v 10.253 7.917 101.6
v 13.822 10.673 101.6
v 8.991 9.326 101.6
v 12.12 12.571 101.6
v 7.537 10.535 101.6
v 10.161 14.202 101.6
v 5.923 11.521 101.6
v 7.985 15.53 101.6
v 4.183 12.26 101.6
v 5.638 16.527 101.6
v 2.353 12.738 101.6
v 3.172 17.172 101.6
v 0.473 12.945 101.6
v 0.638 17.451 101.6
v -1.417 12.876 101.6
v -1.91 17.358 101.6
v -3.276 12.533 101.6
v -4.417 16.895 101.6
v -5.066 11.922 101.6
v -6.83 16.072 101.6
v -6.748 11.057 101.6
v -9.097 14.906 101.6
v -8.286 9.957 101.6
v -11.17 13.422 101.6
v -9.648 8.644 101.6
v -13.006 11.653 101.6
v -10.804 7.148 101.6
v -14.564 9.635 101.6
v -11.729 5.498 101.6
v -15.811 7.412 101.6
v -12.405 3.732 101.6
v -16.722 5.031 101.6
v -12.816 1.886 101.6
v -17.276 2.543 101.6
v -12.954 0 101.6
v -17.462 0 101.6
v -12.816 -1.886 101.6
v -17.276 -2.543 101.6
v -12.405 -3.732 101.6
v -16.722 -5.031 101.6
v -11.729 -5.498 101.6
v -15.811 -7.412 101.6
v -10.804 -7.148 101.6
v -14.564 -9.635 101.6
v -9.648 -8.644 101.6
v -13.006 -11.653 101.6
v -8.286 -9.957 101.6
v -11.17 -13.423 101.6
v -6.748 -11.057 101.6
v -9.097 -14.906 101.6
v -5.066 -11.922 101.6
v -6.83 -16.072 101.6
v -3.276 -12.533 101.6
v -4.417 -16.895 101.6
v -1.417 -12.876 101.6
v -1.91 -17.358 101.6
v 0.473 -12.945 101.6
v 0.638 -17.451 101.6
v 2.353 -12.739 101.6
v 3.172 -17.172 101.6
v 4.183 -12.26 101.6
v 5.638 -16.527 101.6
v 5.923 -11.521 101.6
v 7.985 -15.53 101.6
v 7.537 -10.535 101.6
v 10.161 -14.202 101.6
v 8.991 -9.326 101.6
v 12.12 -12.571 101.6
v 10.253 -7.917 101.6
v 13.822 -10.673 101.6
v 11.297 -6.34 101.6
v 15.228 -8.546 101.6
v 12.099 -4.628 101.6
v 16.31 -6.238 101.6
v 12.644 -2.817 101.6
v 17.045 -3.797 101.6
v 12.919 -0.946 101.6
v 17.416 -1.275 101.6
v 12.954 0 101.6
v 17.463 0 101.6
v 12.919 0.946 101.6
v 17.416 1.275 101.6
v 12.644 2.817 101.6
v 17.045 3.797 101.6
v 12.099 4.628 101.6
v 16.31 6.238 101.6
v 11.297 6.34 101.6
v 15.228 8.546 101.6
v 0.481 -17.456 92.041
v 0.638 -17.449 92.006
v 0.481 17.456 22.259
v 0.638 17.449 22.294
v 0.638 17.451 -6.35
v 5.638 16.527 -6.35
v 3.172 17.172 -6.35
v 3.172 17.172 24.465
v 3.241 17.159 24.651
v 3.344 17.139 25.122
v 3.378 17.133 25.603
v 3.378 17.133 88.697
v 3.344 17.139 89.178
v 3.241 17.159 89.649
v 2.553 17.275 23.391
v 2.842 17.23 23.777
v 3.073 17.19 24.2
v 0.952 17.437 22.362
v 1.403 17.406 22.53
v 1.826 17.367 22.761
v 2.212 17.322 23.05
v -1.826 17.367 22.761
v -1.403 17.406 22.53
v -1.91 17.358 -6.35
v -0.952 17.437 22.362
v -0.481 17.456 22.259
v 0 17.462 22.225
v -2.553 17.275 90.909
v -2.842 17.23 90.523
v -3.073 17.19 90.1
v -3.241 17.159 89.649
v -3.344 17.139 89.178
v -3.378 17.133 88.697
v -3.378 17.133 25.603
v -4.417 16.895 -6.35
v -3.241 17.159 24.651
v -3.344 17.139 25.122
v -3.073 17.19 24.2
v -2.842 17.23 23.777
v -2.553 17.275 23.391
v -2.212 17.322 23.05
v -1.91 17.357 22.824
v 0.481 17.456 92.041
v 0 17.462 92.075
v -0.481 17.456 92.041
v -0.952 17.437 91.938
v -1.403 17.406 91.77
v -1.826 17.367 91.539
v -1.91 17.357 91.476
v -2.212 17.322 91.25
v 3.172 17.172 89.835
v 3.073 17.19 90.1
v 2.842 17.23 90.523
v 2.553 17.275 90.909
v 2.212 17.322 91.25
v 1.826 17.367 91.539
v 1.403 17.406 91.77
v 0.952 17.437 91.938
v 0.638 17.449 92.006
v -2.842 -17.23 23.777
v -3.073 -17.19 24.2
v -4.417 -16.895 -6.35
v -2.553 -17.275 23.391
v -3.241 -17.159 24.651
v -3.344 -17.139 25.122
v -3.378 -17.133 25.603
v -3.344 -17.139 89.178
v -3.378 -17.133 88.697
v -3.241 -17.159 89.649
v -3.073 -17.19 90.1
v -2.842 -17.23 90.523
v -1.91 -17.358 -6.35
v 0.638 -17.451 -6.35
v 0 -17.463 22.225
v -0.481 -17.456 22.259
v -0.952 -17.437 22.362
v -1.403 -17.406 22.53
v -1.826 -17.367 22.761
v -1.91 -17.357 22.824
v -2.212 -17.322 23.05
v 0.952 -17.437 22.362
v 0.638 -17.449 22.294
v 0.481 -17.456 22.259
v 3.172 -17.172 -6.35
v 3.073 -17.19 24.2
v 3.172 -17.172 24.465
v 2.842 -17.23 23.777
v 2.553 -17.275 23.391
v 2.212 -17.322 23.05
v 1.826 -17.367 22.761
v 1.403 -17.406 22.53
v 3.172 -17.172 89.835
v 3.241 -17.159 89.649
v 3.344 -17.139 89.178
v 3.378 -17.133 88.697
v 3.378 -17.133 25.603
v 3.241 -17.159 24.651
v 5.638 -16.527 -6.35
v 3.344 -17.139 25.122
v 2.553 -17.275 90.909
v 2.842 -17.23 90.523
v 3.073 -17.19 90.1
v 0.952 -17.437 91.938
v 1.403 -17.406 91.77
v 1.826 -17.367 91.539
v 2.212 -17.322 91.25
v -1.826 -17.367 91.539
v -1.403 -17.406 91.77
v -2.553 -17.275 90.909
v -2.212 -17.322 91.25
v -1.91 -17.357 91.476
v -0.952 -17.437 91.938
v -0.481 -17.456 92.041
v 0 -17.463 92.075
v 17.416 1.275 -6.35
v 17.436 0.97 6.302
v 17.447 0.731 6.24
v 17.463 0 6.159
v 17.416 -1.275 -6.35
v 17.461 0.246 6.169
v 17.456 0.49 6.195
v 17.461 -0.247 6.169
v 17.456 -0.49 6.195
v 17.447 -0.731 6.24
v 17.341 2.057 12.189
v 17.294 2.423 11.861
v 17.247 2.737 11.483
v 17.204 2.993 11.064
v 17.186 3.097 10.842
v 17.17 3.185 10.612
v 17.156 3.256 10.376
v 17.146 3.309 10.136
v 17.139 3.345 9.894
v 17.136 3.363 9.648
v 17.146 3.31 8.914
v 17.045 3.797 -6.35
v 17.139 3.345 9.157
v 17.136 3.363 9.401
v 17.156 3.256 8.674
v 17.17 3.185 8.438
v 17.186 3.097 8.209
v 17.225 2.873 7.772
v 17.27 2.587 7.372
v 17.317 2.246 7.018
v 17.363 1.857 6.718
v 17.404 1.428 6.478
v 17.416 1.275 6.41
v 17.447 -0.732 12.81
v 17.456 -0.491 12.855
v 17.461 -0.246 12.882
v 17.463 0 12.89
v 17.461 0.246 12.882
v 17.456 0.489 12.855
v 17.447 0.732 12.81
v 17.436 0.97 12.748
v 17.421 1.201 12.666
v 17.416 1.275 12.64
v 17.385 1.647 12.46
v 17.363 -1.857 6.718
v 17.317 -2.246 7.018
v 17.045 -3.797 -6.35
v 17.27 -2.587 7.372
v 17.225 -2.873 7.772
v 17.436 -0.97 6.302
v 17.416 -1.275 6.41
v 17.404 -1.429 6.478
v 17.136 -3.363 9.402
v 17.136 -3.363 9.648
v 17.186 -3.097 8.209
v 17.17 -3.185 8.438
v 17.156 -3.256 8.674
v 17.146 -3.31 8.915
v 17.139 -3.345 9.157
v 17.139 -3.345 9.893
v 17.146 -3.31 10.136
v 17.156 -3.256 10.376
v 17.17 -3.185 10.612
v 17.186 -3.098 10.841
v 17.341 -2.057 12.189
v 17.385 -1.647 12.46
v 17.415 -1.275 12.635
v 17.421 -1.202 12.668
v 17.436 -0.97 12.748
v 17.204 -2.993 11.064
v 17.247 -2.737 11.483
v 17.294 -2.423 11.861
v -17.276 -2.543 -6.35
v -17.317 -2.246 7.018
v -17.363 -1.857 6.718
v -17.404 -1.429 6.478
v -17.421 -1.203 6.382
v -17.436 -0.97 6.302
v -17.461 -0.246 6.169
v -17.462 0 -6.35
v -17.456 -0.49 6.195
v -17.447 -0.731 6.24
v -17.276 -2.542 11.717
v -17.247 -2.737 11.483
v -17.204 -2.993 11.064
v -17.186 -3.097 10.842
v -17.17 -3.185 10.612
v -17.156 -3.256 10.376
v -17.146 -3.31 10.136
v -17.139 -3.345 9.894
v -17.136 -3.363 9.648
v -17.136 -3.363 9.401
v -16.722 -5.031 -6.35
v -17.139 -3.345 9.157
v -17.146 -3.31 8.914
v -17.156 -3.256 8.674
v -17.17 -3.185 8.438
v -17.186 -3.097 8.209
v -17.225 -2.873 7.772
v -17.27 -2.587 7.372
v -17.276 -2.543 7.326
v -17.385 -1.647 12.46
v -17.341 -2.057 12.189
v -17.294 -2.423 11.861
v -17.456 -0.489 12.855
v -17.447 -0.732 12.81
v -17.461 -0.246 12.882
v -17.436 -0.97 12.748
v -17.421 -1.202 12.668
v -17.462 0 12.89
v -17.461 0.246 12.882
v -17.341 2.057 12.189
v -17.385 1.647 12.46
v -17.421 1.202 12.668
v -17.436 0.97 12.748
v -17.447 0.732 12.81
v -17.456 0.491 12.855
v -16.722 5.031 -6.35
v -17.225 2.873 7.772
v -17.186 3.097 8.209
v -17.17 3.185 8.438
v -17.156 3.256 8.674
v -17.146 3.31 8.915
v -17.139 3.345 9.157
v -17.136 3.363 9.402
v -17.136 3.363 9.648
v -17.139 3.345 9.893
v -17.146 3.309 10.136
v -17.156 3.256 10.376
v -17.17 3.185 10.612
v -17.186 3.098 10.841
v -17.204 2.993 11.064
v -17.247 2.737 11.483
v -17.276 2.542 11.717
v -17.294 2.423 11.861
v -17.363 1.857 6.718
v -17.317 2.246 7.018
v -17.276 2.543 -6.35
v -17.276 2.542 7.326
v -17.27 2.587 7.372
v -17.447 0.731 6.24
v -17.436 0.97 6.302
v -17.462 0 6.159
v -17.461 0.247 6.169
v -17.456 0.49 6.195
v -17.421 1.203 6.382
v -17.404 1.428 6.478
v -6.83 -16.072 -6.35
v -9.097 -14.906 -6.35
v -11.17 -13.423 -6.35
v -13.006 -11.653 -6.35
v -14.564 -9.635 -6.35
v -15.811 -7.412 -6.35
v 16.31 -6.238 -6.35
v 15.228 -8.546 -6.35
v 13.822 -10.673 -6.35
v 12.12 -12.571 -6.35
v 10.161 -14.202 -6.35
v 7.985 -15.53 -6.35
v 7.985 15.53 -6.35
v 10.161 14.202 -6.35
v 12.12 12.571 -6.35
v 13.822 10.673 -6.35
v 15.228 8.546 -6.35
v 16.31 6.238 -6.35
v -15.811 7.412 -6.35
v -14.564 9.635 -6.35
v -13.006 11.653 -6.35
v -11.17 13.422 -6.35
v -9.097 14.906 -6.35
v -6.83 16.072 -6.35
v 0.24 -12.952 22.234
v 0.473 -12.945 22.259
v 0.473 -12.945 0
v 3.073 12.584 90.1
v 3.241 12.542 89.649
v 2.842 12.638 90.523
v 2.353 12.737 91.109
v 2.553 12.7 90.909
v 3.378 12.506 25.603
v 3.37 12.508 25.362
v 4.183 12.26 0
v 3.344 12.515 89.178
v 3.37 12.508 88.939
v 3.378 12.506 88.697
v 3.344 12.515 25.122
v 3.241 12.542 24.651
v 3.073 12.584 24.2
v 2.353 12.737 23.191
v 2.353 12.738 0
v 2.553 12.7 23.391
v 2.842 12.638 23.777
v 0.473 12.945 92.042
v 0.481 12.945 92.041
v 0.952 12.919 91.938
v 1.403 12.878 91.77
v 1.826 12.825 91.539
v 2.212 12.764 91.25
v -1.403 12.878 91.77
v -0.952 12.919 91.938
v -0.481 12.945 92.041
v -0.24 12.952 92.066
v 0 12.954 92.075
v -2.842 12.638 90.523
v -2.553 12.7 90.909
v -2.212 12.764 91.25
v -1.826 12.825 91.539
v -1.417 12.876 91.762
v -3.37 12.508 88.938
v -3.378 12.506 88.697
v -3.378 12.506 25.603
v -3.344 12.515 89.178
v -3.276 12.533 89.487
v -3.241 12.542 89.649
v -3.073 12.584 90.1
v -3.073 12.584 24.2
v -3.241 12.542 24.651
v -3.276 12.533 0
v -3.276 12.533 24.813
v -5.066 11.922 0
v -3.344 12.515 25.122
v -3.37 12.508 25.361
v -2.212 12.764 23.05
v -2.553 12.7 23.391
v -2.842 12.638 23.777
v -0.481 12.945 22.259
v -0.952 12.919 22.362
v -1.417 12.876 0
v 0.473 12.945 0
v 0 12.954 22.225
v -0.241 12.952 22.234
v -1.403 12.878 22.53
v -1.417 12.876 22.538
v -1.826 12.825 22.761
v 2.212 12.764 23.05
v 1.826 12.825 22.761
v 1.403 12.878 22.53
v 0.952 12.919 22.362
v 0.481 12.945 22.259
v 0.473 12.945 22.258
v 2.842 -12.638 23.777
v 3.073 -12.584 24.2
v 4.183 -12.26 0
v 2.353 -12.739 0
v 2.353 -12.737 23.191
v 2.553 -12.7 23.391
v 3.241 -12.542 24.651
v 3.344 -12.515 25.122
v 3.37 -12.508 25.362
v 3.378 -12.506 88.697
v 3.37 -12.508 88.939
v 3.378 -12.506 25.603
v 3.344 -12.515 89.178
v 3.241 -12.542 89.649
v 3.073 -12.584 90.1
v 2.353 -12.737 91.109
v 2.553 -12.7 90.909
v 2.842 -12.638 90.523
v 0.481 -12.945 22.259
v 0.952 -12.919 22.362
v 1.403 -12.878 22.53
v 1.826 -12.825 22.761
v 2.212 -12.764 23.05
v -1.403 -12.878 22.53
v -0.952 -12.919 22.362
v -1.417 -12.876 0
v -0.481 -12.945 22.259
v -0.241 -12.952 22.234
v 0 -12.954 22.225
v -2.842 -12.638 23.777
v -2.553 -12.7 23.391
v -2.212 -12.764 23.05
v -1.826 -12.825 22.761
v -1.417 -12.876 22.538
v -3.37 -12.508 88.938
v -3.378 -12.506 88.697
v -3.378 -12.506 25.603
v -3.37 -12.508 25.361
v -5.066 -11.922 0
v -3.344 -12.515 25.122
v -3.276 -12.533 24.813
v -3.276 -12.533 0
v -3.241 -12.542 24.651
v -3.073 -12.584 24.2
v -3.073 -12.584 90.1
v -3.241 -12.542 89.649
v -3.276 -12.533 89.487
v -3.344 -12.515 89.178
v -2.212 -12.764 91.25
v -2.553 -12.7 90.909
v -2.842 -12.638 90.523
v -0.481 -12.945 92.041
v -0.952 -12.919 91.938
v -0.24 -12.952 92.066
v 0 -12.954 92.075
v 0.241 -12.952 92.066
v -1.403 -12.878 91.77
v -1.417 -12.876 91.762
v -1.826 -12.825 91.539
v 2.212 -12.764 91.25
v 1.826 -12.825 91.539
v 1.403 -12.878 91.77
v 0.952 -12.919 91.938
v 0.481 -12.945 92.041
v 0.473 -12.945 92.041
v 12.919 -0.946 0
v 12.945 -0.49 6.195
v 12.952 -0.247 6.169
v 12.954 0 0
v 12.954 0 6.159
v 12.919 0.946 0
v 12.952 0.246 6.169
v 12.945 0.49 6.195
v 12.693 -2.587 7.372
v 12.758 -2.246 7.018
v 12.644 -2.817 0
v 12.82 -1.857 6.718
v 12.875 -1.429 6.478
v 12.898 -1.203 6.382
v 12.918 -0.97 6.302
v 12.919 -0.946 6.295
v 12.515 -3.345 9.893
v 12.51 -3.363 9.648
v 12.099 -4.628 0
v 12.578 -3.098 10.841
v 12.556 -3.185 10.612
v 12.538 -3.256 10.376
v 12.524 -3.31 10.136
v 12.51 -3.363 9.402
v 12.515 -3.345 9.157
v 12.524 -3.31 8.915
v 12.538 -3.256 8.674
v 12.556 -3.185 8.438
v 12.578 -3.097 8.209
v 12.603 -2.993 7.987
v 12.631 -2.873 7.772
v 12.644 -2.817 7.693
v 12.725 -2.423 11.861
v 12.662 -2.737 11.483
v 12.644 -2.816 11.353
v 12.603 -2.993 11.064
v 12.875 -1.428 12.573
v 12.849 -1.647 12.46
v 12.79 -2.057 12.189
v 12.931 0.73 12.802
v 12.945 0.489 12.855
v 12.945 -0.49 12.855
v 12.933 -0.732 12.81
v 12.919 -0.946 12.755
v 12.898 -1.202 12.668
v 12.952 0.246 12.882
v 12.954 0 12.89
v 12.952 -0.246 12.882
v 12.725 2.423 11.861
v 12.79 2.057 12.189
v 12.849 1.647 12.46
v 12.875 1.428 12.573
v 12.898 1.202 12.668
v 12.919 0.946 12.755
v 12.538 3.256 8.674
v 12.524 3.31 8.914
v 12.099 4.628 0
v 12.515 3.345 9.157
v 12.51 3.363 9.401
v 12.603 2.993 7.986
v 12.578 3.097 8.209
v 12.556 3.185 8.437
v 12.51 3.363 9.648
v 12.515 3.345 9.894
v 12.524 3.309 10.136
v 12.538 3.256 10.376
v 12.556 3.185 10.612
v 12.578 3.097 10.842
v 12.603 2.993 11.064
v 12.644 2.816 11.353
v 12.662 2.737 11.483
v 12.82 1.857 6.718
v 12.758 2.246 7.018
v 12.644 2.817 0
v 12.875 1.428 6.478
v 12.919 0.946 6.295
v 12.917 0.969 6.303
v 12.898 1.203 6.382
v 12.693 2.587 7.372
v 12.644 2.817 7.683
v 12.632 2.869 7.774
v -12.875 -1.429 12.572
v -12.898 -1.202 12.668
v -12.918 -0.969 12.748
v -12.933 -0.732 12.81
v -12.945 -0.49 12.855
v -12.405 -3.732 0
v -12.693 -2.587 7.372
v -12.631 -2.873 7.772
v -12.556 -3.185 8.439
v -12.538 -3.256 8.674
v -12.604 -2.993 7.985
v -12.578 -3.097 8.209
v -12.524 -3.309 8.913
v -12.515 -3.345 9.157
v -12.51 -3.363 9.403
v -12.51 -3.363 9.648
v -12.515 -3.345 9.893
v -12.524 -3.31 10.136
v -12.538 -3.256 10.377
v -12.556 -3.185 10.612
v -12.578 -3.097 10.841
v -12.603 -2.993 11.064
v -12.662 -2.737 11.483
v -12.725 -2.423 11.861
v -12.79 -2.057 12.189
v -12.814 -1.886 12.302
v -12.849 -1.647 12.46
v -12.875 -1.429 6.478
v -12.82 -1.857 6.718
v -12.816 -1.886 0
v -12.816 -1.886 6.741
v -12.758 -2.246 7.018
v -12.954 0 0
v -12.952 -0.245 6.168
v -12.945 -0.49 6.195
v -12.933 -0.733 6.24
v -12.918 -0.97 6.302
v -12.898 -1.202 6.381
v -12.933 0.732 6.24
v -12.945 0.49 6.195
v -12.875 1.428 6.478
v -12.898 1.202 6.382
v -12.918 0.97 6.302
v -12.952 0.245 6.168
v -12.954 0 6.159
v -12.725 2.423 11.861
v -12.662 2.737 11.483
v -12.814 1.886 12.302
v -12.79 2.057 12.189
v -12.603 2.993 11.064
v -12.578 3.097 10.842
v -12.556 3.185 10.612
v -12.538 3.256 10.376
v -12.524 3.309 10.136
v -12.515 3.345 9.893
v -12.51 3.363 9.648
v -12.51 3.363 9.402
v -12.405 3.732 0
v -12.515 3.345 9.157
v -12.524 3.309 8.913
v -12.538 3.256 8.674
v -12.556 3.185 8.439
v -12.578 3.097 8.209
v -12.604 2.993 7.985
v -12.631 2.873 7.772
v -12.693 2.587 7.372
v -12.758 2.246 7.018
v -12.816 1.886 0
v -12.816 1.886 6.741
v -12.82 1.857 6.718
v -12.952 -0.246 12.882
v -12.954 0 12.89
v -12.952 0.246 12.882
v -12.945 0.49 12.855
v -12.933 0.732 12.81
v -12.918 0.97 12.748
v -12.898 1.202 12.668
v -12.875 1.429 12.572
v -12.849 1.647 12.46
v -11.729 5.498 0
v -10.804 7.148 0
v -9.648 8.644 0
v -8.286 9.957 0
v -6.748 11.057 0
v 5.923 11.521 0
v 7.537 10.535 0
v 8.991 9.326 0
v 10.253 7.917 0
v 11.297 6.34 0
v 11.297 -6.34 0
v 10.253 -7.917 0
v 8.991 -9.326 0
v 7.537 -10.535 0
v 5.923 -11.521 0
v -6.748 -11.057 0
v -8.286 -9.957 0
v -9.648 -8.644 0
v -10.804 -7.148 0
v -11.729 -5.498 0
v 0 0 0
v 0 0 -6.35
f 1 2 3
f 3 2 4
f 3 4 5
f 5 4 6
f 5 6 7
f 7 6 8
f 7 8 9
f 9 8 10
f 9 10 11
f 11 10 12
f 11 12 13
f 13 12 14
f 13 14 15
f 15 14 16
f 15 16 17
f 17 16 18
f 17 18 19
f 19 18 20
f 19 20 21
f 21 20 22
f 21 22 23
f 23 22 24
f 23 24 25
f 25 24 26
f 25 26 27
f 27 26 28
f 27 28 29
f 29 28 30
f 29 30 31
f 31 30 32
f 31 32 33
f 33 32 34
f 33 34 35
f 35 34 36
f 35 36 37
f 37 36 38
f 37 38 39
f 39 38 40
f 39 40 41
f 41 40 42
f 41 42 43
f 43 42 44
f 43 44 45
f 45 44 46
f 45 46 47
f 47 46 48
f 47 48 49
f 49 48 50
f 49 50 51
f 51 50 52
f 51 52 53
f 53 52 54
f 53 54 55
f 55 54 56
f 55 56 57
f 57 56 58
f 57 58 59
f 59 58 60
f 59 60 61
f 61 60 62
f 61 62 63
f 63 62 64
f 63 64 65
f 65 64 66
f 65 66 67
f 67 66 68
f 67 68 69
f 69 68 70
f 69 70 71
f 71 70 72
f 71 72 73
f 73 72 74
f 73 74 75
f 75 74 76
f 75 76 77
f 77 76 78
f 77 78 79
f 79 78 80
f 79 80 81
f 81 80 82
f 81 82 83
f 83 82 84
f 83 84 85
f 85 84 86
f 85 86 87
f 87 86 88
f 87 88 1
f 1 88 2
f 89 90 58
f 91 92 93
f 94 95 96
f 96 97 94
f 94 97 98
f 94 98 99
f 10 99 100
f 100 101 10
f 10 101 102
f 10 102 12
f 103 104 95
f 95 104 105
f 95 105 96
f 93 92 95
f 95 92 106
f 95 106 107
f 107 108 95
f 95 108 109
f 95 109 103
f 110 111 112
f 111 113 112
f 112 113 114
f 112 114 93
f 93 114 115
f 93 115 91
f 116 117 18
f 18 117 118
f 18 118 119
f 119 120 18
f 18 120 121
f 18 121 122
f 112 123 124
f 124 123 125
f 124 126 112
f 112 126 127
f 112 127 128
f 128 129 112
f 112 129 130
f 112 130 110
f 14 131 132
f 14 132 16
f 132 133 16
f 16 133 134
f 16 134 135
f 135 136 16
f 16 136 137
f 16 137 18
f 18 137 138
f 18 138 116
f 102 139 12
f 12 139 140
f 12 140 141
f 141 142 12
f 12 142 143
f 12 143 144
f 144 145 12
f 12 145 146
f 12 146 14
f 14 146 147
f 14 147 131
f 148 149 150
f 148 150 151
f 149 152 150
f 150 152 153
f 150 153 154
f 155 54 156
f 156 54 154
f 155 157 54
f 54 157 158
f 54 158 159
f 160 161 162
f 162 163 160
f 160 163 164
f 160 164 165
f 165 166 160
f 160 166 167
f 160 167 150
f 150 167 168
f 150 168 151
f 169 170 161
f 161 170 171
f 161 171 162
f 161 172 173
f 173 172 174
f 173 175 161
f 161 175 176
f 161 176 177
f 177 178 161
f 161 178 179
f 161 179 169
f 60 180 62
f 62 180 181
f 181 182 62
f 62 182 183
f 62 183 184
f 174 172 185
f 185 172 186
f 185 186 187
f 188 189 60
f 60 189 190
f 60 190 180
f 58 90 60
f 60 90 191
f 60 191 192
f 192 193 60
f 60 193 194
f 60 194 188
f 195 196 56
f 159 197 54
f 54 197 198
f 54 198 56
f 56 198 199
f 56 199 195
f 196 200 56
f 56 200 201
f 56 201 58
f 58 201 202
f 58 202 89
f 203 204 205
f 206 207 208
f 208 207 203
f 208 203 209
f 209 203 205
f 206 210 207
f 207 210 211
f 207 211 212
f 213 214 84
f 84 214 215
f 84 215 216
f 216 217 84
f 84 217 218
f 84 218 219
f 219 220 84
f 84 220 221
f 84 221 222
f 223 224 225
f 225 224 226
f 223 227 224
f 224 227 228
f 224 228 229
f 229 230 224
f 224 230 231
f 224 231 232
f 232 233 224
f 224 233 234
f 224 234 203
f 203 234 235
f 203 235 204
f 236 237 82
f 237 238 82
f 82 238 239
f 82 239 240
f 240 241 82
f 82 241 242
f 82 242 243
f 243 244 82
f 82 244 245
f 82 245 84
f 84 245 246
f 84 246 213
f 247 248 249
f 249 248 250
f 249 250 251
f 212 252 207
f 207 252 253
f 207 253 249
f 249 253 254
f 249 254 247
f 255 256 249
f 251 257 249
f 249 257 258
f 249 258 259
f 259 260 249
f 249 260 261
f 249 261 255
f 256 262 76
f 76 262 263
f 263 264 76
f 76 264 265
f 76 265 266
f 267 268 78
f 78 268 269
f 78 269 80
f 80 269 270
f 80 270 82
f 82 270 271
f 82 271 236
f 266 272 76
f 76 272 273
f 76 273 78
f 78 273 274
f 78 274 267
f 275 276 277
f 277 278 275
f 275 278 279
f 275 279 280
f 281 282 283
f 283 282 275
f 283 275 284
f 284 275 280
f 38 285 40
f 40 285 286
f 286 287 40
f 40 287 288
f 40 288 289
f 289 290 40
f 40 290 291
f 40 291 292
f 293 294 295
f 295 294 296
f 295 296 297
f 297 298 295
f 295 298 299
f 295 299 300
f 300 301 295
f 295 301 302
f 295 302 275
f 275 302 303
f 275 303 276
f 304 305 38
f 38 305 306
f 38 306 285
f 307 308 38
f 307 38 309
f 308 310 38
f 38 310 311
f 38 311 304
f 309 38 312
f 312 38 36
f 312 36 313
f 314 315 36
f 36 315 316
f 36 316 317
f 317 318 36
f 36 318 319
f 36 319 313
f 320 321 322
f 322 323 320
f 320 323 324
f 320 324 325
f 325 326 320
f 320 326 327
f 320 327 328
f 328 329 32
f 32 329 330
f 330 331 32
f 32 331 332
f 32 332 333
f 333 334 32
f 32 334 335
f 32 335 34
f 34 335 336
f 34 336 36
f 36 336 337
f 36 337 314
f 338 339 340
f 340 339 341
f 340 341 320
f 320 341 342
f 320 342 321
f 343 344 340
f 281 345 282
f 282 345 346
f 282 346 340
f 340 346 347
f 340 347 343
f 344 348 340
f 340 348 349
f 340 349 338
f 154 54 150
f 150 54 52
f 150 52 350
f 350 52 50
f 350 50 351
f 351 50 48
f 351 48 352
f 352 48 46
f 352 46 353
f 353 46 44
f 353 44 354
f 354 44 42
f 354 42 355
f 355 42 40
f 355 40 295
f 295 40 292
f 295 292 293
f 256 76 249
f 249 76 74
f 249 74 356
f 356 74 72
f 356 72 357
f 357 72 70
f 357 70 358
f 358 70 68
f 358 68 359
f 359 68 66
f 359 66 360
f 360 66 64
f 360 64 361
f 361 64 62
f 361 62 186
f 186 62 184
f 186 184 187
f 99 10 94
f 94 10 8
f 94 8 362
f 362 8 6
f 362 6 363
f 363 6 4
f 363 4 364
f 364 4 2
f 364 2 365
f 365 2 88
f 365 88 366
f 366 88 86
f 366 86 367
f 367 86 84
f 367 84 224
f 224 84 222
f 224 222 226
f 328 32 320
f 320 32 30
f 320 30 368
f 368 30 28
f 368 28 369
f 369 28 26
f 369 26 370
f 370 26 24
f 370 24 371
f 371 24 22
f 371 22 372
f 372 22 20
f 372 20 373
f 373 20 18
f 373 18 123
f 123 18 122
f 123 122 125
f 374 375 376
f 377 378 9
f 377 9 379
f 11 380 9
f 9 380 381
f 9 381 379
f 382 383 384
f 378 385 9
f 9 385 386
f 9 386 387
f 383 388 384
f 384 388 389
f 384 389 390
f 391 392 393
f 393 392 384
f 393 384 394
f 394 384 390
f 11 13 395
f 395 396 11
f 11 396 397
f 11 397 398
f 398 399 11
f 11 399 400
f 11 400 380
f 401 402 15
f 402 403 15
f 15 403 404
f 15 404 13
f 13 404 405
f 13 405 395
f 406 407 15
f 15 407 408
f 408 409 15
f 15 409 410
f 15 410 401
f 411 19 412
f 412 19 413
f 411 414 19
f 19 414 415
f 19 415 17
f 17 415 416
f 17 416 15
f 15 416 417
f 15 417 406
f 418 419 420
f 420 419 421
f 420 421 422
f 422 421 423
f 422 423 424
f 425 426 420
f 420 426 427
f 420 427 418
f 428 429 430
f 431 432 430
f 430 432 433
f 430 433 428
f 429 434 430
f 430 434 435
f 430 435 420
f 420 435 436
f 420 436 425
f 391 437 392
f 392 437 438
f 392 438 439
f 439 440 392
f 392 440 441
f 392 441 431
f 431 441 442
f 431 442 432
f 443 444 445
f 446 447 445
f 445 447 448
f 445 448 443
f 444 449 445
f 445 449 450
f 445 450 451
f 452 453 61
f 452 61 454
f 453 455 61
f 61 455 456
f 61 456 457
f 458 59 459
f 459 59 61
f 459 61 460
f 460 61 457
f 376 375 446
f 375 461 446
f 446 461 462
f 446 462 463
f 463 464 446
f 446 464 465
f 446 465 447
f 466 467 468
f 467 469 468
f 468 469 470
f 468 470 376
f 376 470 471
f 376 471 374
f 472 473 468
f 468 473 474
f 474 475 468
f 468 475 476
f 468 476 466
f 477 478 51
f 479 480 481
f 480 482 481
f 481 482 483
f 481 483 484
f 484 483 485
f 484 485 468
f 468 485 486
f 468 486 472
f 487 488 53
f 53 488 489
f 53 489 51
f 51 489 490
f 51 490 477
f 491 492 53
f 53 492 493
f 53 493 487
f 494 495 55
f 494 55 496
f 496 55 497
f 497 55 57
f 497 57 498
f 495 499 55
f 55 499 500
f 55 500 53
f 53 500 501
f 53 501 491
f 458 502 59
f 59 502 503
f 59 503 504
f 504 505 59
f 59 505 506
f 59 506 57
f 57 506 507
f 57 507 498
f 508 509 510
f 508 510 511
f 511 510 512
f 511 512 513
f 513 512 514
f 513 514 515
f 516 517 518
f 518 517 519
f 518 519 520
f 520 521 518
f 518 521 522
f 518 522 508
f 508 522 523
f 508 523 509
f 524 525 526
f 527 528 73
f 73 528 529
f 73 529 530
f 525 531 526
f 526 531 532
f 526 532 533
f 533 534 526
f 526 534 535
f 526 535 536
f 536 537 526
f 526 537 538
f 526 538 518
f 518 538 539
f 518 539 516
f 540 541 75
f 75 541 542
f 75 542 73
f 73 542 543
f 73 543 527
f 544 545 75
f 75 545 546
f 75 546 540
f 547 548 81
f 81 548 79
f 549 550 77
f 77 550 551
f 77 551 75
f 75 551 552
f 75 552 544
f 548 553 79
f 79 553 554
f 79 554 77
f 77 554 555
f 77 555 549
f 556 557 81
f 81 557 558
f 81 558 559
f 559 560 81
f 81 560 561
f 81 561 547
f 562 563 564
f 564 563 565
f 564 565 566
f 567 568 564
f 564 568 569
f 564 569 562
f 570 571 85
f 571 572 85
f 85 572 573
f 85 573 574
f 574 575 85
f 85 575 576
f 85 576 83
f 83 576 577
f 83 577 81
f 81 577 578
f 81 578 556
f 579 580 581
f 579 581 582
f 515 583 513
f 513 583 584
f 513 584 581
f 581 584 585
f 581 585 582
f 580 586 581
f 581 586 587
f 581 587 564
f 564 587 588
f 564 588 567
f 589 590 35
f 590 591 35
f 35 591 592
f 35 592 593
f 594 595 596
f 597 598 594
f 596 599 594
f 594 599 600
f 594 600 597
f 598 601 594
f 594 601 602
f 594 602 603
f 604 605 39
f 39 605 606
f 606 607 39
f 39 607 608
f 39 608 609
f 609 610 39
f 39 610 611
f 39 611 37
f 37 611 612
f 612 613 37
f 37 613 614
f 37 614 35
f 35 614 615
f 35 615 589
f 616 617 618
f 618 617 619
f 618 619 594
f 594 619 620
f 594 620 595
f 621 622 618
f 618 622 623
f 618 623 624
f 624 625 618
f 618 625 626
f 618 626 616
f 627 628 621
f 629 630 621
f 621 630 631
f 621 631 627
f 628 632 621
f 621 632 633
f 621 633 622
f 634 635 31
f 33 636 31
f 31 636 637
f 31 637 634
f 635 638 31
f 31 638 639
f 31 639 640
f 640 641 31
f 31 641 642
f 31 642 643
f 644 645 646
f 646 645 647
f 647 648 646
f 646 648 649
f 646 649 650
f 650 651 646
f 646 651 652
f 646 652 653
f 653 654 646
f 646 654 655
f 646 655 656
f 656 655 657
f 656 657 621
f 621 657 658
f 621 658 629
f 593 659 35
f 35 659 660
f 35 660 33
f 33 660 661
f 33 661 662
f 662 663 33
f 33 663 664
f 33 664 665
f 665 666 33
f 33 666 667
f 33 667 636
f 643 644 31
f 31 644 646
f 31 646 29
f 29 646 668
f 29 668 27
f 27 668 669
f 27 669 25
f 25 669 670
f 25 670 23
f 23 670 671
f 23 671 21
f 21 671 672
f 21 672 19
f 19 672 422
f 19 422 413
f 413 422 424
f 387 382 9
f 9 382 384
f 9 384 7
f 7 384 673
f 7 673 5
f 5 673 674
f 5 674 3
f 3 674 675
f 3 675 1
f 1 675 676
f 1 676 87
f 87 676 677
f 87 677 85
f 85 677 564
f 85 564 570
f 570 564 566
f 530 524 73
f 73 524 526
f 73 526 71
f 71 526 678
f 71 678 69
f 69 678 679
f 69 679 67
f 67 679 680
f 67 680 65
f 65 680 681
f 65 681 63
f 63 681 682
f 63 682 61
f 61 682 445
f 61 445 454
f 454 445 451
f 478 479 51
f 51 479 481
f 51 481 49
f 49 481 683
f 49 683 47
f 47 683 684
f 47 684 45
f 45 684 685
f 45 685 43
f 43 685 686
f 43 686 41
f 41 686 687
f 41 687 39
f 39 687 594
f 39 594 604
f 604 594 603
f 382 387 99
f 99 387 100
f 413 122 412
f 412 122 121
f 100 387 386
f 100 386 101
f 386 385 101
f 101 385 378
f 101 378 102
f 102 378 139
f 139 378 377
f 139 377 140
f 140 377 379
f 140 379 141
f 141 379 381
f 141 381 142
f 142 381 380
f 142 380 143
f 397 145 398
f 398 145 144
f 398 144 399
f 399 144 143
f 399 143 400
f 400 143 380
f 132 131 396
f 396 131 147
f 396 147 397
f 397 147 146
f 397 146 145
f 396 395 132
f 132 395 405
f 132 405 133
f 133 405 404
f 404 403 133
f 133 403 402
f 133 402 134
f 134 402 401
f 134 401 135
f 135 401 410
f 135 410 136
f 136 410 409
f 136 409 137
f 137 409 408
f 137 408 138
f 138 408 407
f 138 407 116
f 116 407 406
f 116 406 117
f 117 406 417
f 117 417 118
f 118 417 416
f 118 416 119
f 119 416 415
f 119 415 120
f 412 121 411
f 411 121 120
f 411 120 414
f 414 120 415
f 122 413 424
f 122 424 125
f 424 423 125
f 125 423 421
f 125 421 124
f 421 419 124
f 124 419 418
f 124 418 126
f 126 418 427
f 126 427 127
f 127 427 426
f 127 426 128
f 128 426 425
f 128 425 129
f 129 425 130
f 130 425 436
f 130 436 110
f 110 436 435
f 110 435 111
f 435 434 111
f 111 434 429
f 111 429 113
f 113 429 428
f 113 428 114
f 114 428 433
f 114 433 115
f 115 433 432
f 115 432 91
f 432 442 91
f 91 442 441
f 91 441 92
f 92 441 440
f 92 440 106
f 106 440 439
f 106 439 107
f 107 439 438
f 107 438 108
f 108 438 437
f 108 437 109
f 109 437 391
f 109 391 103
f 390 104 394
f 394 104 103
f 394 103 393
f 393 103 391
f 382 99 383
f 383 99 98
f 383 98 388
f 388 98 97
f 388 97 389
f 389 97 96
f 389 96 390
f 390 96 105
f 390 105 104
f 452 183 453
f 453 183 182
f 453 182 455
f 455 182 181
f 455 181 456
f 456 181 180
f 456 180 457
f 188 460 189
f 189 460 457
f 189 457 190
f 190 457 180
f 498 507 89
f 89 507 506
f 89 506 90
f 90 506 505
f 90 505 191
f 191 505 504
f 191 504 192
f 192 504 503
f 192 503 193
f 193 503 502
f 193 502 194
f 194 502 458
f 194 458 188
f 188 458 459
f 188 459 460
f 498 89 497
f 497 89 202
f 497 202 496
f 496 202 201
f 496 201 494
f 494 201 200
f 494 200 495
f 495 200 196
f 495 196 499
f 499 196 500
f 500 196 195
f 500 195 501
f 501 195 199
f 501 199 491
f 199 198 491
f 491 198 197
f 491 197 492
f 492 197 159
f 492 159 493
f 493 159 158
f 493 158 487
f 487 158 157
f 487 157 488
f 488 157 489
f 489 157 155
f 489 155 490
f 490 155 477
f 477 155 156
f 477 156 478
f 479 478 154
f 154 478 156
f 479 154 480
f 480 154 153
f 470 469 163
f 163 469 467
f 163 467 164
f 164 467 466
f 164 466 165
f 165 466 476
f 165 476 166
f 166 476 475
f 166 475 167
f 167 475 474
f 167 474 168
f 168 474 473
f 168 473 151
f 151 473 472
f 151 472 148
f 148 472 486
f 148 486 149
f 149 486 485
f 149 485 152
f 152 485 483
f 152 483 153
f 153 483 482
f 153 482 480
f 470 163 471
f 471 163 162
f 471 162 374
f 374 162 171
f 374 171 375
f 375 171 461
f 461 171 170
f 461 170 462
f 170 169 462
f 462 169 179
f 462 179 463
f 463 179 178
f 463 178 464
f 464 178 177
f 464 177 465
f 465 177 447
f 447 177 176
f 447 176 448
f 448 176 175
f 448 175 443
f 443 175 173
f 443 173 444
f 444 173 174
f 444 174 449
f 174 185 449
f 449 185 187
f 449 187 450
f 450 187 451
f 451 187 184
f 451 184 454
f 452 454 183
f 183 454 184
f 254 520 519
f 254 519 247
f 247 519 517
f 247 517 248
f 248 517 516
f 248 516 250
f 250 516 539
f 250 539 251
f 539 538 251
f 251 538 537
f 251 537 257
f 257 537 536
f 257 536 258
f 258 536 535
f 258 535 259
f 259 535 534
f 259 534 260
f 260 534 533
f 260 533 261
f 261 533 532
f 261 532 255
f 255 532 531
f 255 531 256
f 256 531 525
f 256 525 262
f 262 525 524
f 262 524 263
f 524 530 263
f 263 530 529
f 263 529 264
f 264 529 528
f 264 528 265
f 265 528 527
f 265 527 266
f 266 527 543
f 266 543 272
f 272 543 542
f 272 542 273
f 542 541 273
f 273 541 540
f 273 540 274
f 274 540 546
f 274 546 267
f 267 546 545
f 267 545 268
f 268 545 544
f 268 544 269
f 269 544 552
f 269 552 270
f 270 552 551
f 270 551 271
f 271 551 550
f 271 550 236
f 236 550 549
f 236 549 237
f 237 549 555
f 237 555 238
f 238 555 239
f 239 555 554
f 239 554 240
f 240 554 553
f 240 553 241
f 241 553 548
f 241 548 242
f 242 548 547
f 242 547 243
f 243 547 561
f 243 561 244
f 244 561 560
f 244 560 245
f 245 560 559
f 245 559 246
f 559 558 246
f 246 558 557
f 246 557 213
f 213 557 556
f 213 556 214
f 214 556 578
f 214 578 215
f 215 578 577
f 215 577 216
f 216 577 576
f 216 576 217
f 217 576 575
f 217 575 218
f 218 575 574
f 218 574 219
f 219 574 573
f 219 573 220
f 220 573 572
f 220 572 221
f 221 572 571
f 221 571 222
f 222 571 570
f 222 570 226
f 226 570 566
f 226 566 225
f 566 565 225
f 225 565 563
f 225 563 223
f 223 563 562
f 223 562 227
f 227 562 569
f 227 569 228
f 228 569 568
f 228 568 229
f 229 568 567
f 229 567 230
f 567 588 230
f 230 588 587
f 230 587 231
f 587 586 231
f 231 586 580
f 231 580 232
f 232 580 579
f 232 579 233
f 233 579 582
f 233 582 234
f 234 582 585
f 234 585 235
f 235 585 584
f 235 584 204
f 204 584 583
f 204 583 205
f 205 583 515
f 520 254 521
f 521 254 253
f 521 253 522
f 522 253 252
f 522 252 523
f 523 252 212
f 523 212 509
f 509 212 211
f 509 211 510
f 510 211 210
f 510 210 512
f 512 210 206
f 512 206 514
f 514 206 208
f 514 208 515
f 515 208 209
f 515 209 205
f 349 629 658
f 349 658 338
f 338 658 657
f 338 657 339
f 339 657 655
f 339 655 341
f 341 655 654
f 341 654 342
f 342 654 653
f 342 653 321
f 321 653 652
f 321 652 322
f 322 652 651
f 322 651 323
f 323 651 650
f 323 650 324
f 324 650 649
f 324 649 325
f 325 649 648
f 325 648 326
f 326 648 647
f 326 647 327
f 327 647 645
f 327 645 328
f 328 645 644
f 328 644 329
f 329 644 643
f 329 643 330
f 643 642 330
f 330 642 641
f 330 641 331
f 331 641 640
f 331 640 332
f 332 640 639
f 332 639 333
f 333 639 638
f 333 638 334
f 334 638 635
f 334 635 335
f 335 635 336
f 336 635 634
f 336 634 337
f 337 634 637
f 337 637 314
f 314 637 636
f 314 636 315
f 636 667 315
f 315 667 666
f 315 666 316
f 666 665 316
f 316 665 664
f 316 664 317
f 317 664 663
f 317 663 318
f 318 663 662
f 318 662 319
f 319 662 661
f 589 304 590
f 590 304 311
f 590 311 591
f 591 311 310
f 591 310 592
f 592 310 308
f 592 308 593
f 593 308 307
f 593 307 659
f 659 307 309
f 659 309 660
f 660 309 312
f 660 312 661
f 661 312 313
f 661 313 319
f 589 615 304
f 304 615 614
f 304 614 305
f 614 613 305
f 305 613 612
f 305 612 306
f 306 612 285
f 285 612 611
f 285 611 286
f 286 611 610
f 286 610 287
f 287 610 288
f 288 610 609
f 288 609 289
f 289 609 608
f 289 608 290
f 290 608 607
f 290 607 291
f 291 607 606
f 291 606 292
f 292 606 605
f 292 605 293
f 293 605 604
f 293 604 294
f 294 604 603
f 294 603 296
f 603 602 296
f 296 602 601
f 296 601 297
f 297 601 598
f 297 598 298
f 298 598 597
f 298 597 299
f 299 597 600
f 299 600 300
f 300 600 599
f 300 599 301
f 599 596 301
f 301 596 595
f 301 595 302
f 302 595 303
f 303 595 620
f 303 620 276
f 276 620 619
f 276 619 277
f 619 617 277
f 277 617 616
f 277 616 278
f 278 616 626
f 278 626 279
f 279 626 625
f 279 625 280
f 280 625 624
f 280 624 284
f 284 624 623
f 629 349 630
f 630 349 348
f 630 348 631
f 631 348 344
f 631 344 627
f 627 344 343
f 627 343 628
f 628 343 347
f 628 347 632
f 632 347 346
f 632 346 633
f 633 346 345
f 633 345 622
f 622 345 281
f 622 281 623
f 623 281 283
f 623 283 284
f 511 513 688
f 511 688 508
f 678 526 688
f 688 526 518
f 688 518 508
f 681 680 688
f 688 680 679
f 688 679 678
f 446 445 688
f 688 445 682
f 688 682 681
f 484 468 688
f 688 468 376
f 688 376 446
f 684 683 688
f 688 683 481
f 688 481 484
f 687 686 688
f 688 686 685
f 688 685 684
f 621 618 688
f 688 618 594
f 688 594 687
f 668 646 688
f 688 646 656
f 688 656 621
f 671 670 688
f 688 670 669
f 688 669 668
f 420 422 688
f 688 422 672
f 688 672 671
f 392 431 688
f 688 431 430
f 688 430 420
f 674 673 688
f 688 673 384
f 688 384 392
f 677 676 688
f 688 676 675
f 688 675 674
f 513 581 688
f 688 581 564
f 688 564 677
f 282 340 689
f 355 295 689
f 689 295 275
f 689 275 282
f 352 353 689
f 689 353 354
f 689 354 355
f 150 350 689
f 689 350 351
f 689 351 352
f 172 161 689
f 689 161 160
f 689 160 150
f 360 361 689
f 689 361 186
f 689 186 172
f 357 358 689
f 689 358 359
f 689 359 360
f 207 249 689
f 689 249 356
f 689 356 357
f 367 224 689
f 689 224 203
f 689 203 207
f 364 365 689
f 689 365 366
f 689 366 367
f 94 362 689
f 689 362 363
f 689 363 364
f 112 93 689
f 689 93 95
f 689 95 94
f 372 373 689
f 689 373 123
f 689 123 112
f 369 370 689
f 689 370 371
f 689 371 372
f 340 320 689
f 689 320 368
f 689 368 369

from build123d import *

# Parameters (mm, degrees)
SKETCH1_R                   = 17.4625
SKETCH1_R_2                 = 12.954
BOSS_EXTRUDE1_DEPTH         = 101.6
F_1_4_START                 = 12
F_1_4_CLEARANCE_SLOT1_DEPTH = 6
CUT_EXTRUDE1_REACH          = 106.558
CUT_EXTRUDE1_END_RADIUS     = 17.4625
CUT_EXTRUDE3_DEPTH          = 105.558298762
CUT_EXTRUDE3_DEPTH_BACK     = 105.558298762
SKETCH6_R                   = 3.3655
BOSS_EXTRUDE3_START         = 6.35
SKETCH8_R                   = 17.4625
BOSS_EXTRUDE3_DEPTH         = 6.35


with BuildPart() as part:
    # Sketch1 → Boss-Extrude1 (new body)
    with BuildSketch(Plane.XY):
        Circle(SKETCH1_R)
        Circle(SKETCH1_R_2, mode=Mode.SUBTRACT)
    extrude(amount=BOSS_EXTRUDE1_DEPTH)

    # 1/4 Clearance Slot1: read off the stored shape, not the designer's step
    # 1/4 Clearance Slot1 outline → 1/4 Clearance Slot1 (cut)
    with BuildSketch(Plane(origin=(0, 0, 0), x_dir=(1, 0, 0), z_dir=(0, 1, 0)).offset(F_1_4_START)):
        with BuildLine():
            Line((3.3782, -88.6968), (3.3782, -25.6032))
            ThreePointArc((3.3782, -25.6032), (0, -22.225), (-3.3782, -25.6032))
            Line((-3.3782, -25.6032), (-3.3782, -88.6968))
            ThreePointArc((-3.3782, -88.6968), (0, -92.075), (3.3782, -88.6968))
        make_face()
    extrude(amount=F_1_4_CLEARANCE_SLOT1_DEPTH, mode=Mode.SUBTRACT)

    # Cut-Extrude1: up to this cylinder (the profile starts inside it)
    cut_extrude1_end = Plane(origin=(0, 0, 57.15), z_dir=(0, 0, -1)) * Cylinder(CUT_EXTRUDE1_END_RADIUS, 249.041, mode=Mode.PRIVATE)
    # Sketch4 → Cut-Extrude1 (cut, up to the surface)
    with BuildSketch(Plane(origin=(0, 0, 0), x_dir=(1, 0, 0), z_dir=(0, 1, 0)), mode=Mode.PRIVATE) as cut_extrude1_sk1:
        with BuildLine():
            Line((-3.3782, -88.6968), (-3.3782, -25.6032))
            ThreePointArc((-3.3782, -25.6032), (0, -22.225), (3.3782, -25.6032))
            Line((3.3782, -25.6032), (3.3782, -88.6968))
            ThreePointArc((3.3782, -88.6968), (0, -92.075), (-3.3782, -88.6968))
        make_face()
    cut_extrude1_tool1 = extrude(cut_extrude1_sk1.sketch, amount=-CUT_EXTRUDE1_REACH, mode=Mode.PRIVATE) & cut_extrude1_end
    add(cut_extrude1_tool1.solids().sort_by_distance((0, 0, 57.15))[0], mode=Mode.SUBTRACT)

    # Sketch6 → Cut-Extrude3 (cut, two sides: drawn at the far end of the back side and taken through both)
    with BuildSketch(Plane(origin=(0, 0, 0), x_dir=(0, 0, -1), z_dir=(1, 0, 0)).offset(-CUT_EXTRUDE3_DEPTH_BACK)):
        with Locations((-9.525, 0)):
            Circle(SKETCH6_R)
    extrude(amount=CUT_EXTRUDE3_DEPTH + CUT_EXTRUDE3_DEPTH_BACK, mode=Mode.SUBTRACT)

    # Sketch8 → Boss-Extrude3 (add)
    with BuildSketch(Plane(origin=(0, 0, 0), x_dir=(-1, 0, 0), z_dir=(0, 0, -1)).offset(BOSS_EXTRUDE3_START)):
        Circle(SKETCH8_R)
    extrude(amount=-BOSS_EXTRUDE3_DEPTH)


solid = part.part
